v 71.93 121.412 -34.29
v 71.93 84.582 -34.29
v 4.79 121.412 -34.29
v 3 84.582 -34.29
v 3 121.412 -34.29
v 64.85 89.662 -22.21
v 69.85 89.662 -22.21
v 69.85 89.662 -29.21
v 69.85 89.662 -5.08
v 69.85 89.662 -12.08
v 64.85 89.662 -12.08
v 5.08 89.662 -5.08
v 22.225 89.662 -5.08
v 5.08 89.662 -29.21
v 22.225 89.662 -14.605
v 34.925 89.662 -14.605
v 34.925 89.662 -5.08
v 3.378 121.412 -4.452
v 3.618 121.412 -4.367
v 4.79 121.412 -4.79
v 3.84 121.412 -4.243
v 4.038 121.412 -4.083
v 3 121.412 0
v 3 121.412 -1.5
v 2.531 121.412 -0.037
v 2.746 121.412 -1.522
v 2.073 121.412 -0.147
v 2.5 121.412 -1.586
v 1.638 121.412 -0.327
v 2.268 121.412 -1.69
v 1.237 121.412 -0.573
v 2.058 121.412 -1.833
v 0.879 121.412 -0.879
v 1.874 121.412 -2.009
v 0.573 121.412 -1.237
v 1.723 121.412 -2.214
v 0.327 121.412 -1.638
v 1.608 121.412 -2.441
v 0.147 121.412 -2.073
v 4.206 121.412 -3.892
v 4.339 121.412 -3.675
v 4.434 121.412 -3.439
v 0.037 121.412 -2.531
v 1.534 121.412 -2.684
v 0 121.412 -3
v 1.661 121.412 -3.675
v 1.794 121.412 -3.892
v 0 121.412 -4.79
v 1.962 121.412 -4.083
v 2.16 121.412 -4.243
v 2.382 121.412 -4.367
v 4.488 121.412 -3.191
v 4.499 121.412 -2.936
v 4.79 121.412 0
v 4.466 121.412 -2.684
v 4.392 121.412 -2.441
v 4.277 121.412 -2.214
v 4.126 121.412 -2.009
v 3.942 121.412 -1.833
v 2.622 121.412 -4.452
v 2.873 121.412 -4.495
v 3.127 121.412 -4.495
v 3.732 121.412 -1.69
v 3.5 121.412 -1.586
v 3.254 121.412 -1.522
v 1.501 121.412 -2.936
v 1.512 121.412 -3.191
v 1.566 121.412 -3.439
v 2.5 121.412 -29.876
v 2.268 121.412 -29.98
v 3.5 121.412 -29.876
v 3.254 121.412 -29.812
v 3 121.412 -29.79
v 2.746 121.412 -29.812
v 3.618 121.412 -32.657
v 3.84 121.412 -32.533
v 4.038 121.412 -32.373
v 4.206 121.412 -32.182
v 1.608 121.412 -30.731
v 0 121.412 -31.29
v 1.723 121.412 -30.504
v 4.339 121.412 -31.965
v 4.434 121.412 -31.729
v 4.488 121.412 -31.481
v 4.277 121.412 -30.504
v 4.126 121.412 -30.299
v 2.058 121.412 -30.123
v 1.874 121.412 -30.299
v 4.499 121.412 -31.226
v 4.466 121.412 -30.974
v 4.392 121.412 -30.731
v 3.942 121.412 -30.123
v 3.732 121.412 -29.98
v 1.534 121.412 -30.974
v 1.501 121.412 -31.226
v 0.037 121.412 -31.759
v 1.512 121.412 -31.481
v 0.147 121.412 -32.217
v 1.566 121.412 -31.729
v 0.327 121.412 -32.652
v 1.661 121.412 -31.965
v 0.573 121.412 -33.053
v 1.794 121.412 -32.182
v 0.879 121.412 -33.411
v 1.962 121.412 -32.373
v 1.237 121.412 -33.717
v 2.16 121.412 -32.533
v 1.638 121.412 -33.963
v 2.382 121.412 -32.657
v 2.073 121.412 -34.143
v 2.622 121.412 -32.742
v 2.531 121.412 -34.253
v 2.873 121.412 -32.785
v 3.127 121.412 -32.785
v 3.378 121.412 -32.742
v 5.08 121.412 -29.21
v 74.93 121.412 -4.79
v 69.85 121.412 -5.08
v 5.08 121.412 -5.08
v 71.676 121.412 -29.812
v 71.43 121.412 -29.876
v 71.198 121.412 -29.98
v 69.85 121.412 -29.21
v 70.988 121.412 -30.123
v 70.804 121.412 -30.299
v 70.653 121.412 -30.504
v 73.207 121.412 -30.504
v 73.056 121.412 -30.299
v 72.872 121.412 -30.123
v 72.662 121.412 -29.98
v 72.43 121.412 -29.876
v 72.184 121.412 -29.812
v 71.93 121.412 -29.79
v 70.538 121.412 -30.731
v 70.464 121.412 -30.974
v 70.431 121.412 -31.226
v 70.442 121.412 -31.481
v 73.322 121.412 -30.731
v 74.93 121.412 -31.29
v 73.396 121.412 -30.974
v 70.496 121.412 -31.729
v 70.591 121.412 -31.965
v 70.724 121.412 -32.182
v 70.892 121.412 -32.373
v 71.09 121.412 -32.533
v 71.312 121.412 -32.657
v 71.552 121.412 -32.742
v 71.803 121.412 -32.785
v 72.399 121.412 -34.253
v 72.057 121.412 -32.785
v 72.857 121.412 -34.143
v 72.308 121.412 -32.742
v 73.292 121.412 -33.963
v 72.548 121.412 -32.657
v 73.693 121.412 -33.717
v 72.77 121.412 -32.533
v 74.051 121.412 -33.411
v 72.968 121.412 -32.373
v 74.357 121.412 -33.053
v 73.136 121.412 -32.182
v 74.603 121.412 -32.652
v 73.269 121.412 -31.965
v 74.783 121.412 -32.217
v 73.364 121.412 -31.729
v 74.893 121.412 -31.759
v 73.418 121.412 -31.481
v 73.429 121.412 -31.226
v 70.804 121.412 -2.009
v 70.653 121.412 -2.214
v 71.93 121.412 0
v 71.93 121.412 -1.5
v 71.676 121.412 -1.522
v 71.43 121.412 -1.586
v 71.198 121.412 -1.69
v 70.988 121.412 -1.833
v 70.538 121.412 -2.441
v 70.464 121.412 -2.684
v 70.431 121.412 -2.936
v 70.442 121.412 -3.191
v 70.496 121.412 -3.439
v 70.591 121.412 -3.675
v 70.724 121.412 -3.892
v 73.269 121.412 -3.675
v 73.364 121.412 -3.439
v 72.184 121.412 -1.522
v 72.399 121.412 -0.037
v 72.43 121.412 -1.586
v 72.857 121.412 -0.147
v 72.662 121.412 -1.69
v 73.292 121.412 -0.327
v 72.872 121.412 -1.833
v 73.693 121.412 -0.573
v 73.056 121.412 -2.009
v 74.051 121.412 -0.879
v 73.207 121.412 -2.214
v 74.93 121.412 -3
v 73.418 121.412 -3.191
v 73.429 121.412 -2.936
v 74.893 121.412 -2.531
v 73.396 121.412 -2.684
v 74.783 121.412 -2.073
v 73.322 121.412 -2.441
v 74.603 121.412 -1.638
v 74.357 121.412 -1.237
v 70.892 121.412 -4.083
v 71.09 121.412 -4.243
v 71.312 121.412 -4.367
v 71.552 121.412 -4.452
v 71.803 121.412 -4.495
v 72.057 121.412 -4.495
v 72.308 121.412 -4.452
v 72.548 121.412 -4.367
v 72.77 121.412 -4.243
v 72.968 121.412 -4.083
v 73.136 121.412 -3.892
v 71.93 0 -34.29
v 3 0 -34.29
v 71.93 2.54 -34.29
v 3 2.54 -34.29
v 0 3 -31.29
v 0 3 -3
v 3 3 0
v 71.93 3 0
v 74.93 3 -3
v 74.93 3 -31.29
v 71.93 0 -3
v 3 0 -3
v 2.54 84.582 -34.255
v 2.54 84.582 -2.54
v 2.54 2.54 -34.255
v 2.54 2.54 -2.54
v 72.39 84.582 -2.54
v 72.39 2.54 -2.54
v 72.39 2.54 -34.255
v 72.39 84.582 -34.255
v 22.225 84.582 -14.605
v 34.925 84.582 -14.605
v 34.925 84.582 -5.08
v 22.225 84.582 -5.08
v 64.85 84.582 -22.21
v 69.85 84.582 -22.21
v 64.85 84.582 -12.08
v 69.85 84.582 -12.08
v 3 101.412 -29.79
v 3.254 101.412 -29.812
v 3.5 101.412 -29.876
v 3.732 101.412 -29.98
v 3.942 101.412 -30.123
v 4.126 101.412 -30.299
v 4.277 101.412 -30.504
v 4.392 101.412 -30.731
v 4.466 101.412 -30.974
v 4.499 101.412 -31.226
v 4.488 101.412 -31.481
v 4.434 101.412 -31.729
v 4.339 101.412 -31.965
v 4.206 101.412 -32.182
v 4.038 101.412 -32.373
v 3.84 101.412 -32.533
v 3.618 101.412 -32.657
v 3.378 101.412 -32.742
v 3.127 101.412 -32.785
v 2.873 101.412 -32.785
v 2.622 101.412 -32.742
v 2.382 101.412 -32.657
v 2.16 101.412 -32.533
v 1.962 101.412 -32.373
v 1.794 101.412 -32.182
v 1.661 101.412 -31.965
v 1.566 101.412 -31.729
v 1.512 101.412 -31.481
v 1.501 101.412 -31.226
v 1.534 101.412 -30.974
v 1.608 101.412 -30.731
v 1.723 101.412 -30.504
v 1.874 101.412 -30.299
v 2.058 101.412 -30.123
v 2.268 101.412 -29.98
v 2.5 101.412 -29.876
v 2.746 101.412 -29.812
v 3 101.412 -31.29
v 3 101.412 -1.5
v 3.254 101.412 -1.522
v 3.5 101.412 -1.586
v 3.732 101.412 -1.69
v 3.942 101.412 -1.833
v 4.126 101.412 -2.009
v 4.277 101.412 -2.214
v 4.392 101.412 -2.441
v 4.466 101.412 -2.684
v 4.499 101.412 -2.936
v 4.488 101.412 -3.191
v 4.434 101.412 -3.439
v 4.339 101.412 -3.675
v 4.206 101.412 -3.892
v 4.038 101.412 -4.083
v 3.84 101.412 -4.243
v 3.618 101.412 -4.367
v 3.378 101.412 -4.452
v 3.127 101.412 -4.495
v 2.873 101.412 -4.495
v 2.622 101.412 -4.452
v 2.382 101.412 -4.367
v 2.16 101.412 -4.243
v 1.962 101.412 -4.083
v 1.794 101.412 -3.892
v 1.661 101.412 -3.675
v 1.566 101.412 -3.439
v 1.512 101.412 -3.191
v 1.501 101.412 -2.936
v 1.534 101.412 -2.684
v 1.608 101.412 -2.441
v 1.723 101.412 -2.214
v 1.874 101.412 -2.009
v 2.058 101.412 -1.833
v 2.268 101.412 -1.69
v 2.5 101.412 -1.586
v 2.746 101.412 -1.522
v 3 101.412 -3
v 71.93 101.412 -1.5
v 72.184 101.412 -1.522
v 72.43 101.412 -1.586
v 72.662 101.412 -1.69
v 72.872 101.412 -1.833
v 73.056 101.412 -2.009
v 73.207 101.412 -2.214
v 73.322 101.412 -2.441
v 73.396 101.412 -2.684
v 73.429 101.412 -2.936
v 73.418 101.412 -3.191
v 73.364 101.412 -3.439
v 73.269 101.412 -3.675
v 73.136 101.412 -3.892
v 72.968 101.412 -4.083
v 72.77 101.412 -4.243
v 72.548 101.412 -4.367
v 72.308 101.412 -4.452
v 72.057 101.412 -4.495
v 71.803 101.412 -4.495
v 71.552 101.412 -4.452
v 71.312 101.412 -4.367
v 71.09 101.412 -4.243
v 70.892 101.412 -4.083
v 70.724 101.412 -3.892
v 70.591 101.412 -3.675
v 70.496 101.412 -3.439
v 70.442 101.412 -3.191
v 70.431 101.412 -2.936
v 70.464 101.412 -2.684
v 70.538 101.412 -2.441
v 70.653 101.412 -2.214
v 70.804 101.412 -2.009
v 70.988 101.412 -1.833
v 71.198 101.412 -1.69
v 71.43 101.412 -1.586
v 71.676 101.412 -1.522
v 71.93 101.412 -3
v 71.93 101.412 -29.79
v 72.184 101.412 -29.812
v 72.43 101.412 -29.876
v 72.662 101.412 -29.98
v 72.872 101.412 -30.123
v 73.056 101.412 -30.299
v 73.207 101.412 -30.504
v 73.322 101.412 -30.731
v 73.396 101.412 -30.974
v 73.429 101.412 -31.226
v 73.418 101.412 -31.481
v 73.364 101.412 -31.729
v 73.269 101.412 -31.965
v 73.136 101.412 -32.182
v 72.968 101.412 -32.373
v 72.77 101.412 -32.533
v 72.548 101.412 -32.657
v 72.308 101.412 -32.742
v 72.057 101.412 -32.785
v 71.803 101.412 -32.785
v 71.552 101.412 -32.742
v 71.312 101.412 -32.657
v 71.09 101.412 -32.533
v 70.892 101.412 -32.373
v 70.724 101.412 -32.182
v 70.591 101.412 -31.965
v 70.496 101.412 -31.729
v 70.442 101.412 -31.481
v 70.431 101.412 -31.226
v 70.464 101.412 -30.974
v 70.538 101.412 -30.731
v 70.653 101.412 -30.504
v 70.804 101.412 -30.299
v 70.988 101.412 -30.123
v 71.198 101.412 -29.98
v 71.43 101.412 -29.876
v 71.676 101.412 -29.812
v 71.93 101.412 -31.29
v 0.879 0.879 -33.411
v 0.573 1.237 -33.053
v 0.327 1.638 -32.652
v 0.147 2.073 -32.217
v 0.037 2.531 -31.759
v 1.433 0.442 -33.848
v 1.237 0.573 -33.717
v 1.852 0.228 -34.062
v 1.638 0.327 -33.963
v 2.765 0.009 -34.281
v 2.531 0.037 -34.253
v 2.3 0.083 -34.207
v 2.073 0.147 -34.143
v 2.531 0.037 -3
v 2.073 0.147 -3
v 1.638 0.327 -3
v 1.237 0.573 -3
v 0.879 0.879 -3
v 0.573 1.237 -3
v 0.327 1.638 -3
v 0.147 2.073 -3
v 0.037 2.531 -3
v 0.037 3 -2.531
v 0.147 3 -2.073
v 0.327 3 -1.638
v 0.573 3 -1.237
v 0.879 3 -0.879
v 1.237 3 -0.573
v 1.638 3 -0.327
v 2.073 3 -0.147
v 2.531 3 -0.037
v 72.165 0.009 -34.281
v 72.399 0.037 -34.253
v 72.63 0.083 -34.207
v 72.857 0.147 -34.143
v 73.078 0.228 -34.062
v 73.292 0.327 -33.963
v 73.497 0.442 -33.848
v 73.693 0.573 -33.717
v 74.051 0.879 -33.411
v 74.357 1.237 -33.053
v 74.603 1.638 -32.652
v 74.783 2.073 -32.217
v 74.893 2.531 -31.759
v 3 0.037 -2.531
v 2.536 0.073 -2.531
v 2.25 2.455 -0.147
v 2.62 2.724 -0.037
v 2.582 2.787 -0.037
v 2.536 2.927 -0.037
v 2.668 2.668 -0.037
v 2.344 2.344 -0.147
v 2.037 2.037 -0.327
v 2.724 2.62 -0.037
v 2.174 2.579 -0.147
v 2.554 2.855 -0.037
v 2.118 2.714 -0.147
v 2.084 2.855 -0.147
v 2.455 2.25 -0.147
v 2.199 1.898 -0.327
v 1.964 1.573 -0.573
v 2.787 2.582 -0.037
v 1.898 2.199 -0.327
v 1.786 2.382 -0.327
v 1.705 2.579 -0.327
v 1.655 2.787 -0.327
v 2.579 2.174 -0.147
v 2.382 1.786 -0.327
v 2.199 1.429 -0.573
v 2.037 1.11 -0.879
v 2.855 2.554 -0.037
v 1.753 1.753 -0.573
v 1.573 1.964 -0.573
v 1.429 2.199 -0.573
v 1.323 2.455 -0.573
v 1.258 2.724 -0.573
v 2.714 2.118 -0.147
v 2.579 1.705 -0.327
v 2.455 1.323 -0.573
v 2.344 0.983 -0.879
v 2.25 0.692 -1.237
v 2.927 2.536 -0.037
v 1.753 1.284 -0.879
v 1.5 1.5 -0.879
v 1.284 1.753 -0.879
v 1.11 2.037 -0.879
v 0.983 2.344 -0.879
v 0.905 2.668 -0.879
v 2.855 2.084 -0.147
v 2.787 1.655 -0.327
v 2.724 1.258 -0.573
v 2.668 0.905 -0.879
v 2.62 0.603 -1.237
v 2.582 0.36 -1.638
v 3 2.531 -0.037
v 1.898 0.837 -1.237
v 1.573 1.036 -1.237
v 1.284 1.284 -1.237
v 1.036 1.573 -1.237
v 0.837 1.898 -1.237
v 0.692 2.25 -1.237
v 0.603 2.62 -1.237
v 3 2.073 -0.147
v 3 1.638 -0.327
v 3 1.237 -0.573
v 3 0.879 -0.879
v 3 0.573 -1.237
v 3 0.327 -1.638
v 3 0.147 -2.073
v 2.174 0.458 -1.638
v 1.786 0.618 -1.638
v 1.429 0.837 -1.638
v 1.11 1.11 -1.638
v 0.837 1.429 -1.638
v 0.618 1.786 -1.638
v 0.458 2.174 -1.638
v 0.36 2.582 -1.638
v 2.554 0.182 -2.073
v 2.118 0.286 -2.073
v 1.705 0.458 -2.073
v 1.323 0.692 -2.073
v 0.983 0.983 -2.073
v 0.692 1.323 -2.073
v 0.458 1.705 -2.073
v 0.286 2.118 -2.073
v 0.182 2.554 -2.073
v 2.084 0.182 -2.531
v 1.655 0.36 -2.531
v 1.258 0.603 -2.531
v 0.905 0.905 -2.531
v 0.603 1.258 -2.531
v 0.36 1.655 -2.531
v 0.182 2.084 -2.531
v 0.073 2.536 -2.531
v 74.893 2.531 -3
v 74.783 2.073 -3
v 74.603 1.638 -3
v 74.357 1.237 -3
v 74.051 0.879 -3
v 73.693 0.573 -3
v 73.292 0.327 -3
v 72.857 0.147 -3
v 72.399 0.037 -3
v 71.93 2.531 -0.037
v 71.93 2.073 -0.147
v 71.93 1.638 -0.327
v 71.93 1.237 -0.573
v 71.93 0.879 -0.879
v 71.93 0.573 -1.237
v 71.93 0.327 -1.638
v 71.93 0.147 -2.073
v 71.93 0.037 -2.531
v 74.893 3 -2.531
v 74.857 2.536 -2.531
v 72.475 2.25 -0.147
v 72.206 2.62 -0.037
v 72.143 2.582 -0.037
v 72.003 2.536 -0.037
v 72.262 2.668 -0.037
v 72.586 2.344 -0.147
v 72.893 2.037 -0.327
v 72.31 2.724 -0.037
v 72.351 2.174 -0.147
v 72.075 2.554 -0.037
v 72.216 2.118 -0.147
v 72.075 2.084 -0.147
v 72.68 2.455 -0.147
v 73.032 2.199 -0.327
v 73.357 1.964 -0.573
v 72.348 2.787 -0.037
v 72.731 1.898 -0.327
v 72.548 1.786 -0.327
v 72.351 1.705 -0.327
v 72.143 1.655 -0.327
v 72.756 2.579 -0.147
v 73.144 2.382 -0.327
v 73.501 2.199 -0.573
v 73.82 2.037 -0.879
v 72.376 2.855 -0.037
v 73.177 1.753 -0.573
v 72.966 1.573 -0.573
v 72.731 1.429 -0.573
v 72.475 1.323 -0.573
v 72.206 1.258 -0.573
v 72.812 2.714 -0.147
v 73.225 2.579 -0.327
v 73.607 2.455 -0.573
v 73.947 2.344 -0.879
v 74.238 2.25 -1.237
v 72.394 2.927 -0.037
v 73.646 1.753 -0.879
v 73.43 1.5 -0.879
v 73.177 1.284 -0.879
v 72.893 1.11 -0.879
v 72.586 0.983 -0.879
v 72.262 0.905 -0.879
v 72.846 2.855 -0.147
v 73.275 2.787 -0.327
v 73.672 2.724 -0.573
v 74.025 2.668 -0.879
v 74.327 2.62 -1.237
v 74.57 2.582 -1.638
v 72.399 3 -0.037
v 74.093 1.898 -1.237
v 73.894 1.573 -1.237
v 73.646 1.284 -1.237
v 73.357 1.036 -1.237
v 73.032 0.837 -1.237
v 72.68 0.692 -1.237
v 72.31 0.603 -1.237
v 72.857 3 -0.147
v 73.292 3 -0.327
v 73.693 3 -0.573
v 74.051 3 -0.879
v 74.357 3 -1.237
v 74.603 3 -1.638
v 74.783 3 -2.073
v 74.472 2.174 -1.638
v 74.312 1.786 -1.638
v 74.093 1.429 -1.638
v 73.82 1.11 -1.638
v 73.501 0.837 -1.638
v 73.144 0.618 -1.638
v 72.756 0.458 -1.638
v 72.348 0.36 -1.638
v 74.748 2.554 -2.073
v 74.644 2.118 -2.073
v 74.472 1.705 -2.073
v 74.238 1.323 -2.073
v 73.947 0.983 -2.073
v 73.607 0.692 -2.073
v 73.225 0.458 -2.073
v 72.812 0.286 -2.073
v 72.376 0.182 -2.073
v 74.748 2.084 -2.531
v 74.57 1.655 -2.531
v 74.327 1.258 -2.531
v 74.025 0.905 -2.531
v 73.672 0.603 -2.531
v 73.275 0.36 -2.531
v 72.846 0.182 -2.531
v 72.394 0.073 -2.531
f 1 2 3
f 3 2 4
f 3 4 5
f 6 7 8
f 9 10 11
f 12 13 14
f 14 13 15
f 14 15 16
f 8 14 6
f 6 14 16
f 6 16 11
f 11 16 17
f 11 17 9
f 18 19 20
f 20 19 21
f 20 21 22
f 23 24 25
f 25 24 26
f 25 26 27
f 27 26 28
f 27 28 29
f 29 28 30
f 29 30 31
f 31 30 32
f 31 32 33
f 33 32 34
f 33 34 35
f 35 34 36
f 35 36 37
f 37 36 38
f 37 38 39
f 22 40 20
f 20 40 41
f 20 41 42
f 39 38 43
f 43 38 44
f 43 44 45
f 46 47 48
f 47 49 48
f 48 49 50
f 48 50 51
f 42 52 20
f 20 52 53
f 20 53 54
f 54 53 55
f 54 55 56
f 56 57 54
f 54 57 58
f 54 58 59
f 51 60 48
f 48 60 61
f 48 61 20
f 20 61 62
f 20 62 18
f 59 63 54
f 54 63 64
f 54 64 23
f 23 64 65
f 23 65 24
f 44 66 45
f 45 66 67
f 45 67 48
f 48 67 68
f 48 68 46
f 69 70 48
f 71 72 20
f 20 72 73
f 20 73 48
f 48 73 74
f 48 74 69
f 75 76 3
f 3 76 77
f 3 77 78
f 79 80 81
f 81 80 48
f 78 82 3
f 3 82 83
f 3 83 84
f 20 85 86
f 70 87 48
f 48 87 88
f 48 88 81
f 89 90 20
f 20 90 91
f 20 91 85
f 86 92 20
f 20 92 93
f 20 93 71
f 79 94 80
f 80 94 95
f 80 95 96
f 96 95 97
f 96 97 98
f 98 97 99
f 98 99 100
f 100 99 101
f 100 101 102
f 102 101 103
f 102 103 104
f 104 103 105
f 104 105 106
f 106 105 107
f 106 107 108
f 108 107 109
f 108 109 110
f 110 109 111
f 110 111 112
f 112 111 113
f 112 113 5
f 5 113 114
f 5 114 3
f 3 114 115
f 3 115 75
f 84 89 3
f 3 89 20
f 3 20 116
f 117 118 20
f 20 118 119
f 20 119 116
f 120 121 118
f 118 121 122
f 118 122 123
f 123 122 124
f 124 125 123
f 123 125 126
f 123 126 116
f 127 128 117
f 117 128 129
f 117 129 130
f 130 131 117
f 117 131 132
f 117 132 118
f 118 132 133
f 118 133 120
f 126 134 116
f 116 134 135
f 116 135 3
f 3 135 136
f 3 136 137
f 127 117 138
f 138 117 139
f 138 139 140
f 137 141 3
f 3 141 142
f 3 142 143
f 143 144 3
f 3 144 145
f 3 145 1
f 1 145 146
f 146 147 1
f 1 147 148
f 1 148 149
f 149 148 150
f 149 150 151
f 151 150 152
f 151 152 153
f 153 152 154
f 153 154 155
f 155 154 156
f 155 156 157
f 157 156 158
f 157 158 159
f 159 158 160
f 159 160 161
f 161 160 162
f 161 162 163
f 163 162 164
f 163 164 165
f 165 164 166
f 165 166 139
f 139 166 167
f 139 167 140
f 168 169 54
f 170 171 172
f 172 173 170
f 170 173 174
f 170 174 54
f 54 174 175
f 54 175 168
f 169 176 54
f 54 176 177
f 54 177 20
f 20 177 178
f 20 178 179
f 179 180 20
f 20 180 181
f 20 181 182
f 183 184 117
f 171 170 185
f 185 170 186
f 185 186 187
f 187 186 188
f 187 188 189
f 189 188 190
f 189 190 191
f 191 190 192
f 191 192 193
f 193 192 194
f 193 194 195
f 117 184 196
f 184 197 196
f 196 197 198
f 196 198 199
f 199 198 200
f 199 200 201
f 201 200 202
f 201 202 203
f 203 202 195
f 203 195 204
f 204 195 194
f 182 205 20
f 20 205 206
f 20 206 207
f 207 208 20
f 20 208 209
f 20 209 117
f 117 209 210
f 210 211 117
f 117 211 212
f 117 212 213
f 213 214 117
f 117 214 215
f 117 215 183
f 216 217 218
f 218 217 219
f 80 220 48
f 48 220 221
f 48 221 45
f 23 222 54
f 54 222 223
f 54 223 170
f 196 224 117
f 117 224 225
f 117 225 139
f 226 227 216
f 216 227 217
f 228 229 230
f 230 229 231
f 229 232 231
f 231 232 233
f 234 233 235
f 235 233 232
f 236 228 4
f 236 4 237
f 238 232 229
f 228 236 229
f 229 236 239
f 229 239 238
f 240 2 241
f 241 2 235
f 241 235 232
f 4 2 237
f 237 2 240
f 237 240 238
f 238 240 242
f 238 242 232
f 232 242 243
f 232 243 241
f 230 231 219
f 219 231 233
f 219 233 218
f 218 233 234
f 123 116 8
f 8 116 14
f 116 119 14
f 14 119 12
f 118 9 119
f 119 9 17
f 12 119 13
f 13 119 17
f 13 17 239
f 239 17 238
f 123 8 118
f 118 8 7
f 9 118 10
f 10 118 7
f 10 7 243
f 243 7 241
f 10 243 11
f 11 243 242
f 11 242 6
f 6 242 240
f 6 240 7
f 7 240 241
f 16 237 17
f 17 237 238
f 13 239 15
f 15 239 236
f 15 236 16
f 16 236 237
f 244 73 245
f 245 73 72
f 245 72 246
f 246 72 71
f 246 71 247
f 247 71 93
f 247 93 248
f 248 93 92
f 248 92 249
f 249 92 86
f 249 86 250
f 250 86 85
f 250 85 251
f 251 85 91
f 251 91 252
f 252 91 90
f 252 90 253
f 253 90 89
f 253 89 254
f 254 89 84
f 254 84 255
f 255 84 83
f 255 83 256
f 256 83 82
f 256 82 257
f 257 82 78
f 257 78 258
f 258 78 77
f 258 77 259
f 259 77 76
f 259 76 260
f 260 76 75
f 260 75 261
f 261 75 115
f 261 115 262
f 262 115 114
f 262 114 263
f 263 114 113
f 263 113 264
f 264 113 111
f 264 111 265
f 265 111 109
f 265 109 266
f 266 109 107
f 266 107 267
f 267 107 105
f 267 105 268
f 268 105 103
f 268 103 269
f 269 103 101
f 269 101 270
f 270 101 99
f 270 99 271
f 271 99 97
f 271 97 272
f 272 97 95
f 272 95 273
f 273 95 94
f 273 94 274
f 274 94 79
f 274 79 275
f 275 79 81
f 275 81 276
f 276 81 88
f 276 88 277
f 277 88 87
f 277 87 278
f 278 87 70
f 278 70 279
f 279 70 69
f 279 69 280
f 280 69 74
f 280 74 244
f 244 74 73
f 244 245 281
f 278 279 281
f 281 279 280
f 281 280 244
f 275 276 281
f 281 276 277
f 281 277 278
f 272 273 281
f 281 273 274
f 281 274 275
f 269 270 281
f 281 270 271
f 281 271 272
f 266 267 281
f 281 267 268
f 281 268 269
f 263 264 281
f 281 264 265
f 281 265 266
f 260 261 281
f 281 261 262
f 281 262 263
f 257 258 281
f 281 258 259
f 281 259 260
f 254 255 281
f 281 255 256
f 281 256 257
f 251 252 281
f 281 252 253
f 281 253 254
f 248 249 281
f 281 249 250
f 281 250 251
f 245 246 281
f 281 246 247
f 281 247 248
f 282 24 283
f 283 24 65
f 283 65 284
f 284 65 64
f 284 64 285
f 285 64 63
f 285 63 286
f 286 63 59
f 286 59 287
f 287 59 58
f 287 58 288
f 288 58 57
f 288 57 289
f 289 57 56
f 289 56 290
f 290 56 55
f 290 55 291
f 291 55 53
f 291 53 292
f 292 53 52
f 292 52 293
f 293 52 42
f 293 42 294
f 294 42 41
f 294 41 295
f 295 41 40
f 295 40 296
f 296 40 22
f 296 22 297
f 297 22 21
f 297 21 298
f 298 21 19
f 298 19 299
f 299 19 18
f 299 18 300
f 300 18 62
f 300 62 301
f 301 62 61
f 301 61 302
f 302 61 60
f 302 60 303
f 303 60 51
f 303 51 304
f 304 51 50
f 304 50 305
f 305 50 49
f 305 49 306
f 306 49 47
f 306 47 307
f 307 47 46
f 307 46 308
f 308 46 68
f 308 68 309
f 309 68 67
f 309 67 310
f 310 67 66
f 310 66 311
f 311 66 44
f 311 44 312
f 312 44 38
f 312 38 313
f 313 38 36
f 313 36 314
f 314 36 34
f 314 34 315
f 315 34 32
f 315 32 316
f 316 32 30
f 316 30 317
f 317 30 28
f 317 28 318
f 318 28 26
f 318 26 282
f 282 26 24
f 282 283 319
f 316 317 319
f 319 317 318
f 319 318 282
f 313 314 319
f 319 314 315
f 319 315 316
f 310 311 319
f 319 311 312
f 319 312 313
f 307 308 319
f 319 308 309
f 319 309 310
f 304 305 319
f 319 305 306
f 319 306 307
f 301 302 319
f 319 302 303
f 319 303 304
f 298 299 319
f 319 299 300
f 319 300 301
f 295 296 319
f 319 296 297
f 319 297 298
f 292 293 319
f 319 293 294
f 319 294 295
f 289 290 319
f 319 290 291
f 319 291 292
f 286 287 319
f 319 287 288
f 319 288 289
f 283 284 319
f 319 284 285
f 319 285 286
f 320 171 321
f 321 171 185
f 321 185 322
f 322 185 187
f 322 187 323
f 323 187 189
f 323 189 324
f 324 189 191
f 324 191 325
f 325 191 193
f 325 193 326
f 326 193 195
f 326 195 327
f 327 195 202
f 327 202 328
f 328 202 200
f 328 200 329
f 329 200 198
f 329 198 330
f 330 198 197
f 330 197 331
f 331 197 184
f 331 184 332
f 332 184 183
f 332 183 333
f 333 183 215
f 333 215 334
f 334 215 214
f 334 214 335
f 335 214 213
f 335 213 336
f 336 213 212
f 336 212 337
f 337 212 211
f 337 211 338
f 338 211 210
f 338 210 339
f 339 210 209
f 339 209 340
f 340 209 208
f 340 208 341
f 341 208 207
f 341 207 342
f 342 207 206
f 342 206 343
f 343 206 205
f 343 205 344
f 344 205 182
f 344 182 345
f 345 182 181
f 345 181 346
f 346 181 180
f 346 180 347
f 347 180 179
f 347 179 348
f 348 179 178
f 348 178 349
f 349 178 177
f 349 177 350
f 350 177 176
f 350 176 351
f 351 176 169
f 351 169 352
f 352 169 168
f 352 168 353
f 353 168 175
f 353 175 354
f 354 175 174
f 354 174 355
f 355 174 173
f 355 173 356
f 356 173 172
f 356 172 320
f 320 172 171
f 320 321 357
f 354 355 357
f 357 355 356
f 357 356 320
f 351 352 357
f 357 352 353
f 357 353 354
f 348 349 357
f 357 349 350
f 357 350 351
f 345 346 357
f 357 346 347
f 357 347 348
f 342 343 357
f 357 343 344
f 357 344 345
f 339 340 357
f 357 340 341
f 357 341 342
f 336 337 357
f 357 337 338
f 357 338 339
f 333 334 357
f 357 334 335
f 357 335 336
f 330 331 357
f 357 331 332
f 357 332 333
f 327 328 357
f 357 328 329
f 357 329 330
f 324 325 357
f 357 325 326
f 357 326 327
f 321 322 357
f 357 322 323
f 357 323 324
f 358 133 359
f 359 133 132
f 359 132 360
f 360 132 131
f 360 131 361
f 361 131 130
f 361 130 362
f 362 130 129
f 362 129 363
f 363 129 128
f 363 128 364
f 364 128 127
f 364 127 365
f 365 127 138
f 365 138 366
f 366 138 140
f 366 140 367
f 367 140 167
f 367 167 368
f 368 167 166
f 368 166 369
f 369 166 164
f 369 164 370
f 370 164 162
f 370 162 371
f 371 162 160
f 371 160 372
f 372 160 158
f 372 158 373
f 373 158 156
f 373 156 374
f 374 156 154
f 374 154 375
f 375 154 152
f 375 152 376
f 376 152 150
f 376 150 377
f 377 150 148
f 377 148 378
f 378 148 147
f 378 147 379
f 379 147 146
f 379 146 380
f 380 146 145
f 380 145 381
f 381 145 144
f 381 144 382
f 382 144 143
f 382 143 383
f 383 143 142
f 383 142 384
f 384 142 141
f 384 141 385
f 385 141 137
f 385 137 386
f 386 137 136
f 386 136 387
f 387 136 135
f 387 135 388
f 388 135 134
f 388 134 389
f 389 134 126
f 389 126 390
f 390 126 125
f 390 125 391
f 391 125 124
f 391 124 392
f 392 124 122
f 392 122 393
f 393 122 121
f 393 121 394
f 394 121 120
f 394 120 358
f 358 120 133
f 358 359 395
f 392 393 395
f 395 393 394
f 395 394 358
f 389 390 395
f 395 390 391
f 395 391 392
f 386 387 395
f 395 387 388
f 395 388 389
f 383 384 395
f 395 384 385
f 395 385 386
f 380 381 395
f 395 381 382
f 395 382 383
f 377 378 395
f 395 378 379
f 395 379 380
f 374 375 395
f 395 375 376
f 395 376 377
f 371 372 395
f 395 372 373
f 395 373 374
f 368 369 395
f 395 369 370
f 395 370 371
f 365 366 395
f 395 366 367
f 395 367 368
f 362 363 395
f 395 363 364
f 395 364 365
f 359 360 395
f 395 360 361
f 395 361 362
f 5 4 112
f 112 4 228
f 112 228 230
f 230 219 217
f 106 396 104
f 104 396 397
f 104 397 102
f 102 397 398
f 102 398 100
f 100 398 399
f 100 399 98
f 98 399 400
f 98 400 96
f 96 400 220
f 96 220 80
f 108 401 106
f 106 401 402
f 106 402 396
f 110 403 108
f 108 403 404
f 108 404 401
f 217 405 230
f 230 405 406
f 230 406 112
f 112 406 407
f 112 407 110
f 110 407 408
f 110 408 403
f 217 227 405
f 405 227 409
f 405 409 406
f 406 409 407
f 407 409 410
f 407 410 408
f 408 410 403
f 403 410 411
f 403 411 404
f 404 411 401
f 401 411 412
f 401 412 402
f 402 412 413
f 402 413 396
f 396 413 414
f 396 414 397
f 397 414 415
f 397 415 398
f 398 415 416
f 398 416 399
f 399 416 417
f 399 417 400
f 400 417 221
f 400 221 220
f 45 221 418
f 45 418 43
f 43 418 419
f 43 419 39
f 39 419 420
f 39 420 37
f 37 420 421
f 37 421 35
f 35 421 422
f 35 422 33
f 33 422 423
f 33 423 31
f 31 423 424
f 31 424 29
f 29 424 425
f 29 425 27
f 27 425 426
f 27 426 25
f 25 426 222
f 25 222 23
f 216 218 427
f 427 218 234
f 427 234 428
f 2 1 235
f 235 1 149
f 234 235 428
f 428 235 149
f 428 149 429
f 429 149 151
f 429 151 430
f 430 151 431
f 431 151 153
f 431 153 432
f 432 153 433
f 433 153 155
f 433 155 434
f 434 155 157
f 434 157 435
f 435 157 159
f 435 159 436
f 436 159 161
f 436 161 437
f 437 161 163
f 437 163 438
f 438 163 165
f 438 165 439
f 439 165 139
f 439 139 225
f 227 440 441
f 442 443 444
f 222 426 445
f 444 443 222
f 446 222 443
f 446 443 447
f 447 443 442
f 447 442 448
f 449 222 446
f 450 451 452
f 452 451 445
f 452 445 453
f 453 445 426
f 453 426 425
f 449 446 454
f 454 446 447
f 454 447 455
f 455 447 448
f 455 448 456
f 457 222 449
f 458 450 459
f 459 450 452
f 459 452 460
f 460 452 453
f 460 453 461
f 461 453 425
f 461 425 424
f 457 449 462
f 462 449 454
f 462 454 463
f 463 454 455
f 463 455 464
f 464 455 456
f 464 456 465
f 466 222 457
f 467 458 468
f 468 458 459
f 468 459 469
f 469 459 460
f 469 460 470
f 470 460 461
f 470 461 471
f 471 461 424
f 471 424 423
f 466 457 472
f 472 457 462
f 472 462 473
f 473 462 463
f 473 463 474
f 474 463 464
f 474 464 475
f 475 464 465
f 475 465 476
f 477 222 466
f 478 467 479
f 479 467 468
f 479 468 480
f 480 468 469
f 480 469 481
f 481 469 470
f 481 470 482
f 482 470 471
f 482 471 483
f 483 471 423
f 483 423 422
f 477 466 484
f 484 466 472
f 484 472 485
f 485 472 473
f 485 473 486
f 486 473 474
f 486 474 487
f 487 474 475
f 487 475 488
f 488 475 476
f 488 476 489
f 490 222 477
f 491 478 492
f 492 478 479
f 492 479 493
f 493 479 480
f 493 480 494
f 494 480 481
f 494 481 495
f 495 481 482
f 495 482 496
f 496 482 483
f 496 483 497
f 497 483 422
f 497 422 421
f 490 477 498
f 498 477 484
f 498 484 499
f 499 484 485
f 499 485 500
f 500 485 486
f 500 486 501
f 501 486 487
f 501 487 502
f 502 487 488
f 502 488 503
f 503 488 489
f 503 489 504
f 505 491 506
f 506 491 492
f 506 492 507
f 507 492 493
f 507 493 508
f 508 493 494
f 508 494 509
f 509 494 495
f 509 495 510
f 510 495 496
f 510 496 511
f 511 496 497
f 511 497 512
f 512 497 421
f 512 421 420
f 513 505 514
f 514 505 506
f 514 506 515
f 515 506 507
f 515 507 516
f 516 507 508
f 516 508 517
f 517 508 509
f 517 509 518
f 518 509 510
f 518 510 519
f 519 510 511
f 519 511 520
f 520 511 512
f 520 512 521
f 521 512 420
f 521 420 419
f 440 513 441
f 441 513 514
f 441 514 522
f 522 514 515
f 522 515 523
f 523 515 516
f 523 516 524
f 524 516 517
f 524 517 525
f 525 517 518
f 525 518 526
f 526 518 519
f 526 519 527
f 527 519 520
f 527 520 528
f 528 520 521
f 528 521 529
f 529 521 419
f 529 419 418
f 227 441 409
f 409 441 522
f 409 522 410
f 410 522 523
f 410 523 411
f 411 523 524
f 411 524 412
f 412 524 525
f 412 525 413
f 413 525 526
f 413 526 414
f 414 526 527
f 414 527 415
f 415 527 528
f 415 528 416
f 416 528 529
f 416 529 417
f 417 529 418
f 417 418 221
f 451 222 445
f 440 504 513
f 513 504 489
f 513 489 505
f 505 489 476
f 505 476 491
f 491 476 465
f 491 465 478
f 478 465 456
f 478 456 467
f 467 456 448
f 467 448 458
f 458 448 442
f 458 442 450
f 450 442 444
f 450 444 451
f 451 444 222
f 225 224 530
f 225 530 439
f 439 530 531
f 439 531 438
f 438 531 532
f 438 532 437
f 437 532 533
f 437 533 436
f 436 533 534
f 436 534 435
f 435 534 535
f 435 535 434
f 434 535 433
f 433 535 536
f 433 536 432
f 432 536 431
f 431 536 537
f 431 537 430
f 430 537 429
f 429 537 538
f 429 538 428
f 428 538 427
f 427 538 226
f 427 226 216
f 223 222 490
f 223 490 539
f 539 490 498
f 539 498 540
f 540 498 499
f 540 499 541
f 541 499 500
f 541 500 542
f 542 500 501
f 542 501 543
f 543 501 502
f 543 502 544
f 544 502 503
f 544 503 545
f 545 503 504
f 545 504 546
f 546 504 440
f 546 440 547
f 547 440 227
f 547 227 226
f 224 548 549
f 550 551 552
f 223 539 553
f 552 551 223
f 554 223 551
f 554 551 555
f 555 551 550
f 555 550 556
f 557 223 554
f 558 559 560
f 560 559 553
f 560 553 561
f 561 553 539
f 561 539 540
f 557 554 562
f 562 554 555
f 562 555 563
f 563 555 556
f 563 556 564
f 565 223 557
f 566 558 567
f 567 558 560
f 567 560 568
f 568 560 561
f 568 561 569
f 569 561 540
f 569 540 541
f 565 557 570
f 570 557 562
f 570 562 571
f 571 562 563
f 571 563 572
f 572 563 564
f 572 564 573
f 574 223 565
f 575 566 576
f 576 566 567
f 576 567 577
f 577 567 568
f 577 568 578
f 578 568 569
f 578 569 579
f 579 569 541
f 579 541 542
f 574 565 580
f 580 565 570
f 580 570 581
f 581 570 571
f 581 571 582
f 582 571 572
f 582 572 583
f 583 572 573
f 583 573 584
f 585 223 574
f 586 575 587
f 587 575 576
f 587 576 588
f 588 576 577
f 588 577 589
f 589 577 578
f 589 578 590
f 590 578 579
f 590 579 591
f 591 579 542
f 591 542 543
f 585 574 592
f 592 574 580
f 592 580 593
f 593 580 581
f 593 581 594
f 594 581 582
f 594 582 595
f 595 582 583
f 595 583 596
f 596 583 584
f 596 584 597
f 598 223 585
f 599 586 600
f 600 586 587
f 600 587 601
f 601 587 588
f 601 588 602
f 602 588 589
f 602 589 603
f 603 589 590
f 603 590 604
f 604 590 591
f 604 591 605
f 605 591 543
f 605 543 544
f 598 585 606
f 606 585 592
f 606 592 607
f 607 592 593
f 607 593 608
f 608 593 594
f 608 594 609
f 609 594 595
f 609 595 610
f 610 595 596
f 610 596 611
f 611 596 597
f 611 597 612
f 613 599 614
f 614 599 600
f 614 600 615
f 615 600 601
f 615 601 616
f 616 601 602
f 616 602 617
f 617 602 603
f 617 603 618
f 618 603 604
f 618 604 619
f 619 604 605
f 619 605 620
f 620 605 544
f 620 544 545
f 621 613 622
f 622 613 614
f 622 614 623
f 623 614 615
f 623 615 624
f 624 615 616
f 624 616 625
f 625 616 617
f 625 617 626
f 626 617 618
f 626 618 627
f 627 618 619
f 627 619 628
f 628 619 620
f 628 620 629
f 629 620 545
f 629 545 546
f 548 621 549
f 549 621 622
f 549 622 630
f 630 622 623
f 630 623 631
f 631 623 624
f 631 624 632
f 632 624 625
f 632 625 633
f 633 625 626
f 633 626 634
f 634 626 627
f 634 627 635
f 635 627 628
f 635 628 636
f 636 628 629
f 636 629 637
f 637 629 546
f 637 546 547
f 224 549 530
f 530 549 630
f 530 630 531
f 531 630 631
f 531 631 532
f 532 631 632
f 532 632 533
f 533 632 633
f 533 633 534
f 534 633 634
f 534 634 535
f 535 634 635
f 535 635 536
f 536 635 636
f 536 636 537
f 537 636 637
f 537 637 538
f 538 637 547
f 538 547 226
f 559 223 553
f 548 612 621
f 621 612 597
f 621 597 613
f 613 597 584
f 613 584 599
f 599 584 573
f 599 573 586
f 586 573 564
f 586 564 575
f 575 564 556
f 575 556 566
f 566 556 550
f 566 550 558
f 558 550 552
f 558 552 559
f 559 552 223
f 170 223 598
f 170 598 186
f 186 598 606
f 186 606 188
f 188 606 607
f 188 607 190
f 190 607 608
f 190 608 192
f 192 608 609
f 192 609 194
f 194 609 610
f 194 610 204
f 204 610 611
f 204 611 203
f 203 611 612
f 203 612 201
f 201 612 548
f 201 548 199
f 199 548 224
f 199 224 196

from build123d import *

# Parameters (mm, degrees)
SKETCH1_W           = 74.93
SKETCH1_H           = 34.29
BOSS_EXTRUDE1_DEPTH = 87.122
SHELL1_T            = -2.54
SKETCH12_W          = 74.93
SKETCH12_H          = 34.29
BOSS_EXTRUDE6_DEPTH = 34.29
SHELL2_T            = -5.08
CUT_EXTRUDE13_REACH = 123.777
SKETCH18_W          = 12.7
SKETCH18_H          = 9.525
SKETCH18_W_2        = 5
SKETCH18_H_2        = 10.13
SKETCH20_R          = 1.5
CUT_EXTRUDE14_DEPTH = 20
FILLET1_R           = 3


with BuildPart() as part:
    # Sketch1 → Boss-Extrude1 (new body)
    with BuildSketch(Plane(origin=(0, 0, 0), x_dir=(1, 0, 0), z_dir=(0, 1, 0))):
        with Locations((37.465, 17.145)):
            Rectangle(SKETCH1_W, SKETCH1_H)
    extrude(amount=BOSS_EXTRUDE1_DEPTH)

    # Shell1
    shell1_openings = [part.faces().sort_by_distance(p)[0] for p in [
        (37.465, 43.561, -34.29),
    ]]
    offset(amount=SHELL1_T, openings=shell1_openings, kind=Kind.INTERSECTION)

    # Sketch12 → Boss-Extrude6 (add)
    with BuildSketch(Plane(origin=(0, 87.122, 0), x_dir=(1, 0, 0), z_dir=(0, 1, 0))):
        with Locations((37.465, 17.145)):
            Rectangle(SKETCH12_W, SKETCH12_H)
    extrude(amount=BOSS_EXTRUDE6_DEPTH)

    # Shell2
    shell2_openings = [part.faces().sort_by_distance(p)[0] for p in [
        (37.465, 121.412, -17.145),
    ]]
    offset(amount=SHELL2_T, openings=shell2_openings)

    # Sketch18 → Cut-Extrude13 (cut, up to next)
    with BuildSketch(Plane(origin=(0, 89.662, 0), x_dir=(1, 0, 0), z_dir=(0, 1, 0)), mode=Mode.PRIVATE) as cut_extrude13_sk1:
        with Locations((28.575, 9.8425)):
            Rectangle(SKETCH18_W, SKETCH18_H)
    cut_extrude13_tool1 = extrude(cut_extrude13_sk1.sketch, amount=-CUT_EXTRUDE13_REACH, mode=Mode.PRIVATE) & part.part
    # Sketch18 → Cut-Extrude13 (cut, up to next)
    with BuildSketch(Plane(origin=(0, 89.662, 0), x_dir=(1, 0, 0), z_dir=(0, 1, 0)), mode=Mode.PRIVATE) as cut_extrude13_sk2:
        with Locations((67.35, 17.145)):
            Rectangle(SKETCH18_W_2, SKETCH18_H_2)
    cut_extrude13_tool2 = extrude(cut_extrude13_sk2.sketch, amount=-CUT_EXTRUDE13_REACH, mode=Mode.PRIVATE) & part.part
    add(cut_extrude13_tool1.solids().sort_by_distance((28.575, 89.662, -9.8425))[0], mode=Mode.SUBTRACT)
    add(cut_extrude13_tool2.solids().sort_by_distance((67.35, 89.662, -17.145))[0], mode=Mode.SUBTRACT)

    # Sketch20 → Cut-Extrude14 (cut)
    with BuildSketch(Plane(origin=(0, 121.412, 0), x_dir=(1, 0, 0), z_dir=(0, 1, 0))):
        with Locations(Location((3, 31.29, 0), (0, 0, 270))):
            Circle(SKETCH20_R)
        with Locations(Location((3, 3, 0), (0, 0, 270))):
            Circle(SKETCH20_R)
        with Locations(Location((71.93, 3, 0), (0, 0, 270))):
            Circle(SKETCH20_R)
        with Locations(Location((71.93, 31.29, 0), (0, 0, 270))):
            Circle(SKETCH20_R)
    extrude(amount=-CUT_EXTRUDE14_DEPTH, mode=Mode.SUBTRACT)

    # Fillet1
    # the kernel refuses this fillet: 3 mm, written as the material it takes off along each edge
    with BuildSketch(Plane(origin=(71.93, 3, -3), x_dir=(1, 0, 0), z_dir=(0, 0, 1))) as fillet1_piece_1_section:
        Polygon((0, 0), (FILLET1_R, 0), (FILLET1_R, -FILLET1_R), (0, -FILLET1_R), align=None)
    fillet1_piece_1 = extrude(amount=FILLET1_R, mode=Mode.PRIVATE)
    fillet1_piece_1 = fillet1_piece_1 - Plane(origin=(71.93, 3, -3), x_dir=(-0.7071067811865475, 0.7071067811865475, 0), z_dir=(0, 0, 1)) * Sphere(FILLET1_R, mode=Mode.PRIVATE)
    add(fillet1_piece_1, mode=Mode.SUBTRACT)
    with BuildSketch(Plane(origin=(3, 3, -3), x_dir=(-1, 0, 0), z_dir=(0, 0, 1))) as fillet1_piece_2_section:
        Polygon((0, 0), (FILLET1_R, 0), (FILLET1_R, FILLET1_R), (0, FILLET1_R), align=None)
    fillet1_piece_2 = extrude(amount=FILLET1_R, mode=Mode.PRIVATE)
    fillet1_piece_2 = fillet1_piece_2 - Plane(origin=(3, 3, -3), x_dir=(0.7071067811865475, 0.7071067811865475, 0), z_dir=(0, 0, 1)) * Sphere(FILLET1_R, mode=Mode.PRIVATE)
    add(fillet1_piece_2, mode=Mode.SUBTRACT)
    with BuildSketch(Plane(origin=(74.93, 0, -3), x_dir=(0, 1, 0), z_dir=(0, 0, -1)), Plane(origin=(0, 0, -41.79), x_dir=(0, 1, 0), z_dir=(0, 0, 1))) as fillet1_piece_3:
        with BuildLine():
            CenterArc((FILLET1_R, -FILLET1_R), FILLET1_R, 90, 90)
            Line((0, -FILLET1_R), (0, 0))
            Line((0, 0), (FILLET1_R, 0))
        make_face()
    extrude(amount=38.79, mode=Mode.SUBTRACT)
    with BuildSketch(Plane(origin=(3, 0, 0), x_dir=(0, 1, 0), z_dir=(1, 0, 0))) as fillet1_piece_4:
        with BuildLine():
            CenterArc((FILLET1_R, -FILLET1_R), FILLET1_R, 90, 90)
            Line((0, -FILLET1_R), (0, 0))
            Line((0, 0), (FILLET1_R, 0))
        make_face()
    extrude(amount=68.93, mode=Mode.SUBTRACT)
    with BuildSketch(Plane(origin=(74.93, -7.5, -34.29), x_dir=(0, 0, 1), z_dir=(0, 1, 0)), Plane(origin=(0, 128.912, -34.29), x_dir=(0, 0, 1), z_dir=(0, -1, 0))) as fillet1_piece_5:
        with BuildLine():
            CenterArc((FILLET1_R, -FILLET1_R), FILLET1_R, 90, 90)
            Line((0, -FILLET1_R), (0, 0))
            Line((0, 0), (FILLET1_R, 0))
        make_face()
    extrude(amount=136.412, mode=Mode.SUBTRACT)
    with BuildSketch(Plane(origin=(74.93, 3, 0), x_dir=(-1, 0, 0), z_dir=(0, 1, 0)), Plane(origin=(0, 128.912, 0), x_dir=(1, 0, 0), z_dir=(0, -1, 0))) as fillet1_piece_6:
        with BuildLine():
            CenterArc((FILLET1_R, -FILLET1_R), FILLET1_R, 90, 90)
            Line((0, -FILLET1_R), (0, 0))
            Line((0, 0), (FILLET1_R, 0))
        make_face()
    extrude(amount=125.912, mode=Mode.SUBTRACT)


solid = part.part
